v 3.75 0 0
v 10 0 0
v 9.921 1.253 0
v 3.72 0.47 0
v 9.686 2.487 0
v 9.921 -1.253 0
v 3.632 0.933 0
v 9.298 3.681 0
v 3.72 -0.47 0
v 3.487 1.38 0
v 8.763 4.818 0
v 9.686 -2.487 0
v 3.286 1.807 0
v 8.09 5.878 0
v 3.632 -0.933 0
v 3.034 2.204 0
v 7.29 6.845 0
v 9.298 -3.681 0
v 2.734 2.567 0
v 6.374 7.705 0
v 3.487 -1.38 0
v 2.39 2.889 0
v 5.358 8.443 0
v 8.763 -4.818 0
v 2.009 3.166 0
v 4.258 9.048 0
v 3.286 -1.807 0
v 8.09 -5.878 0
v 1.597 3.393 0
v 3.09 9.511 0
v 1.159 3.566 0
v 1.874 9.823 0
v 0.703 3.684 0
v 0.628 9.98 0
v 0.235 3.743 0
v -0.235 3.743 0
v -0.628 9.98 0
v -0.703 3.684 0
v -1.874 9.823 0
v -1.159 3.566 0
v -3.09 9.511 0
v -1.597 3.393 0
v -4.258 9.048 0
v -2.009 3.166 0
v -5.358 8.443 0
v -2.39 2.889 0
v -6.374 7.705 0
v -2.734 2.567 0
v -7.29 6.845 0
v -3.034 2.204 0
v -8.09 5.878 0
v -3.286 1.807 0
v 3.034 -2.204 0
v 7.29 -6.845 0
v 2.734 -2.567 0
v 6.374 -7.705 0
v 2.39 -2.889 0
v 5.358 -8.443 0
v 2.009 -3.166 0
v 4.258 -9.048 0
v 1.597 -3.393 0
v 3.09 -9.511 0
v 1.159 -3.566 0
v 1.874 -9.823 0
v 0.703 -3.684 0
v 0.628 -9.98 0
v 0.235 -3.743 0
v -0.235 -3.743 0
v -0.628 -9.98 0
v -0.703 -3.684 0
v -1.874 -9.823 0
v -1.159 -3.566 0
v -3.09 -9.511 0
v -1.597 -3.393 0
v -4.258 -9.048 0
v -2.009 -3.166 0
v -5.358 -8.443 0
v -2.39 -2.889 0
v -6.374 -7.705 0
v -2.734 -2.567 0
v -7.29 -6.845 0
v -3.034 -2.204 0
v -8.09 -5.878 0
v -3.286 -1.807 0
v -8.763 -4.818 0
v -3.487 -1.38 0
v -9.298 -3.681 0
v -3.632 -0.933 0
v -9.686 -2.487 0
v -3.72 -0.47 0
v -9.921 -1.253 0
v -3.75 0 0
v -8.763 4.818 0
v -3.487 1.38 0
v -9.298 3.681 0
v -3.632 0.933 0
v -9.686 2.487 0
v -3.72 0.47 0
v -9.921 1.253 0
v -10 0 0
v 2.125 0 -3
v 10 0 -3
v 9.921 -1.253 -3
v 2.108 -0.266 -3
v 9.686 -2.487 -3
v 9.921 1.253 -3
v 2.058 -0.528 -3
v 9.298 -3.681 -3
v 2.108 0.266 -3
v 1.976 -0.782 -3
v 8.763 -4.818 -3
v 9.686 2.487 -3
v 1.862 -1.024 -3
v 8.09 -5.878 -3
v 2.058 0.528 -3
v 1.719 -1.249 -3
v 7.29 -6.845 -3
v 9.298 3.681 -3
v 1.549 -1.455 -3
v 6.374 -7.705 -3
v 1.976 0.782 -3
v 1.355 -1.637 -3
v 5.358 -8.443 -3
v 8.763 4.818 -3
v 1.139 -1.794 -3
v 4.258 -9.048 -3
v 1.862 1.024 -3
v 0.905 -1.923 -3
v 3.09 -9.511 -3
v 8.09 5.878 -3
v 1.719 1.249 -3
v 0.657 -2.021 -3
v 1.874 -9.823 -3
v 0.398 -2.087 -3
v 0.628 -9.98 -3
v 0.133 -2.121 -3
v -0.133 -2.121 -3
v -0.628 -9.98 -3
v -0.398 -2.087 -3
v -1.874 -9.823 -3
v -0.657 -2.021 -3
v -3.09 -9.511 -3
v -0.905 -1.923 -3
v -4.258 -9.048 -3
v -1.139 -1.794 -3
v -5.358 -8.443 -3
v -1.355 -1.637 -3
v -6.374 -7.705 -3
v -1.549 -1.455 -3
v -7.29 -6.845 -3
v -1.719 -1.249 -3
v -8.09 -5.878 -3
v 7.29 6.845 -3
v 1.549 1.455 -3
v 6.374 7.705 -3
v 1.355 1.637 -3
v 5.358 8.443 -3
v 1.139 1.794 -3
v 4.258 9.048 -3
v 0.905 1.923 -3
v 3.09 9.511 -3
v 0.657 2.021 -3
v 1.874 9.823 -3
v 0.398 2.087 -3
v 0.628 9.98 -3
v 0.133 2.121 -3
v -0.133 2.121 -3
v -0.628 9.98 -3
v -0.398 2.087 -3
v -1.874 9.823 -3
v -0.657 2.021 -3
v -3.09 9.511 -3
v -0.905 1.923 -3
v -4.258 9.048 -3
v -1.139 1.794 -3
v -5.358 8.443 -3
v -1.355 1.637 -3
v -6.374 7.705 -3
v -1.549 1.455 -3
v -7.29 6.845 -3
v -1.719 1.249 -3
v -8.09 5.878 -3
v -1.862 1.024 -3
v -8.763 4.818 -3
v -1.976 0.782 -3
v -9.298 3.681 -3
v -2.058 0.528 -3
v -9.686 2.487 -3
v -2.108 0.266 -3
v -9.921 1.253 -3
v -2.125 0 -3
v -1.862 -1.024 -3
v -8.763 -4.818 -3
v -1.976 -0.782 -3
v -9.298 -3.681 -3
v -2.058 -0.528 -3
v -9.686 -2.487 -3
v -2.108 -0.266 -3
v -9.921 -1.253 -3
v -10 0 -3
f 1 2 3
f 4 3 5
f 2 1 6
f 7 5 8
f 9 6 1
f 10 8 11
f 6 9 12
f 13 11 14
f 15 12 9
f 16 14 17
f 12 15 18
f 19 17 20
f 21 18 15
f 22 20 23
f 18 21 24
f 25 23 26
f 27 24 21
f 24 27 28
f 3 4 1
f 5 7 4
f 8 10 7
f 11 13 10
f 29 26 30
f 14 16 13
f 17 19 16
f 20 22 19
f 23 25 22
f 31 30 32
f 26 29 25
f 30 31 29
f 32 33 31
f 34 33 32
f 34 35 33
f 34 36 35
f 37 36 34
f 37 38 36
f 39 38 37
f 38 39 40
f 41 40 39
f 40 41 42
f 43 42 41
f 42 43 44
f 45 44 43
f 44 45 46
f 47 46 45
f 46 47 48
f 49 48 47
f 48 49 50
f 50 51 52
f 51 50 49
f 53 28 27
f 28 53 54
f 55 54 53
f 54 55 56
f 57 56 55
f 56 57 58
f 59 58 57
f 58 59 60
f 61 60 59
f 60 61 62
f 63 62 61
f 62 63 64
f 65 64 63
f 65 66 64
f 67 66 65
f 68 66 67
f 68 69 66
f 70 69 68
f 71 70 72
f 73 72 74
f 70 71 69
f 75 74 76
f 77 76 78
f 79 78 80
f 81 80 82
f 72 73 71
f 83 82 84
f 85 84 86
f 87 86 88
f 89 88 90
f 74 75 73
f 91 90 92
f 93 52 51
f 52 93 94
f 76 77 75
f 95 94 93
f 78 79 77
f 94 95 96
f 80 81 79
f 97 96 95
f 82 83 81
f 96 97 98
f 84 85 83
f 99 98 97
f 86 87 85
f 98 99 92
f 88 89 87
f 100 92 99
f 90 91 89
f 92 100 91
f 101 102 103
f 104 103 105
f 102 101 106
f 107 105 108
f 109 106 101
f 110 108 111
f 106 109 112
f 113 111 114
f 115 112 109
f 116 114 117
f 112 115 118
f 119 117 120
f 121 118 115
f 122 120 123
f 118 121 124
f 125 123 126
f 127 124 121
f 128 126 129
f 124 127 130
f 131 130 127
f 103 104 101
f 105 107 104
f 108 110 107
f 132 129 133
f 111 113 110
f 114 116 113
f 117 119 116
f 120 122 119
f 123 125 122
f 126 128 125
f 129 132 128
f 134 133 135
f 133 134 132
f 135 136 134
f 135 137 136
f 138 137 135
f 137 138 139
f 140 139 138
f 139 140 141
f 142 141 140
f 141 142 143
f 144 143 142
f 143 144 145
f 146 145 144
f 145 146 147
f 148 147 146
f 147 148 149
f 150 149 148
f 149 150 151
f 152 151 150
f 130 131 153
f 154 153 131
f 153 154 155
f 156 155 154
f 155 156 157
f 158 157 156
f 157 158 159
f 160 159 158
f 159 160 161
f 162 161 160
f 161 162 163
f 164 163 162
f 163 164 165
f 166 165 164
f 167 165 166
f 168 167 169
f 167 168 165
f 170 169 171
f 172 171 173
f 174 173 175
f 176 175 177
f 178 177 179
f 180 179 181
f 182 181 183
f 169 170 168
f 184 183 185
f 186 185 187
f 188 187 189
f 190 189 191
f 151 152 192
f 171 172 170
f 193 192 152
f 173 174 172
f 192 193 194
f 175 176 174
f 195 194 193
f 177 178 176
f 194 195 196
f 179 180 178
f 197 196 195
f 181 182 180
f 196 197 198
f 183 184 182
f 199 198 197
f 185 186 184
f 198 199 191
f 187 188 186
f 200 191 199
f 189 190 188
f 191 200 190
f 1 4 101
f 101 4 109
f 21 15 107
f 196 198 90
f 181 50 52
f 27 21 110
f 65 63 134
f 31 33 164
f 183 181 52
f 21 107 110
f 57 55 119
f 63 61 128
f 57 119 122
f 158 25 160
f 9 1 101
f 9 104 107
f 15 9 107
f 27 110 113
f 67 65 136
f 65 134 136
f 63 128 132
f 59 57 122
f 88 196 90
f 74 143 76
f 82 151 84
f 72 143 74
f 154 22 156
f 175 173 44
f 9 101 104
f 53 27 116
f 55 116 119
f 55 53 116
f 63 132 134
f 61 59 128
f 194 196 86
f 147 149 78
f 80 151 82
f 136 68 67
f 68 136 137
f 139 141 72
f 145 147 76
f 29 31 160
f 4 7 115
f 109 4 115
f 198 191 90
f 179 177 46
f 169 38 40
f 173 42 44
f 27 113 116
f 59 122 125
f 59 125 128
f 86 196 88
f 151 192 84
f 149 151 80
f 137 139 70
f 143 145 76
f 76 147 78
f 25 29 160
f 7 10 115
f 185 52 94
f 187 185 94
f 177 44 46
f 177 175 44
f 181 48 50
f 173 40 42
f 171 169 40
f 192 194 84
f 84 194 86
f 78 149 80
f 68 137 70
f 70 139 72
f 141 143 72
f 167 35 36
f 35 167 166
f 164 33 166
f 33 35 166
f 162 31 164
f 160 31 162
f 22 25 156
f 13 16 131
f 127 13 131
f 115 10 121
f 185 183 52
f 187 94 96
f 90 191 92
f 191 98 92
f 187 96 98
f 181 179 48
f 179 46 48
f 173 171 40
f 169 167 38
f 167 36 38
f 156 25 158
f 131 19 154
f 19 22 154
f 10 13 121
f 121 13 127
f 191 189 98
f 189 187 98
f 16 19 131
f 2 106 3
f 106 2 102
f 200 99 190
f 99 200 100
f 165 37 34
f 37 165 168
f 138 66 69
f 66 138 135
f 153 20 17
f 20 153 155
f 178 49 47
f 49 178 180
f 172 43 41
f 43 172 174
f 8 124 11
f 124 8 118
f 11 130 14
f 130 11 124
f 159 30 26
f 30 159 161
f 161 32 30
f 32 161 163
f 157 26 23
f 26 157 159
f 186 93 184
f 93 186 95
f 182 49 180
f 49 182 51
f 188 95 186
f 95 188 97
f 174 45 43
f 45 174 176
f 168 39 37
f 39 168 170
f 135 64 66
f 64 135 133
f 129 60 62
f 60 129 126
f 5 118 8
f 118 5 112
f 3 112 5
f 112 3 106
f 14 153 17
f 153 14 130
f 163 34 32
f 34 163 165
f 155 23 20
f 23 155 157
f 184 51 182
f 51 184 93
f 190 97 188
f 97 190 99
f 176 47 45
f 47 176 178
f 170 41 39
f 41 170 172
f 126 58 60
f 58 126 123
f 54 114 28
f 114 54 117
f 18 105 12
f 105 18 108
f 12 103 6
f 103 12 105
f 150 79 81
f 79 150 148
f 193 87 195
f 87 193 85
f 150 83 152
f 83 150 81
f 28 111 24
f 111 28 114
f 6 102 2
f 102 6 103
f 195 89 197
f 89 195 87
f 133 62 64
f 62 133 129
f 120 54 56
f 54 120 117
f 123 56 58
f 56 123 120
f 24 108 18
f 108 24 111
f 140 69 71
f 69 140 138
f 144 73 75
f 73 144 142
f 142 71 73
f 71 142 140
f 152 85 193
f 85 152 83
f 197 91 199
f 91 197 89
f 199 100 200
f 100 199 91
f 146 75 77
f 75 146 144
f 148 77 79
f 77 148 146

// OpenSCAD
$fn = 50;


difference() {
	union() {
		translate(v = [0, 0, -3.0000000000]) {
			cylinder(h = 3, r = 10.0000000000);
		}
		cylinder(h = 0, r = 20.0000000000);
	}
	union() {
		translate(v = [0, 0, 0]) {
			rotate(a = [0, 0, 0]) {
				difference() {
					union() {
						#translate(v = [0, 0, -3.0000000000]) {
							cylinder(h = 3, r = 2.0000000000);
						}
						#translate(v = [0, 0, -3]) {
							cylinder(h = 3, r = 10.0000000000, r1 = 2.1250000000, r2 = 3.7500000000);
						}
						#translate(v = [0, 0, -3.0000000000]) {
							cylinder(h = 3, r = 2.1250000000);
						}
						#translate(v = [0, 0, -3.0000000000]) {
							cylinder(h = 3, r = 2.0000000000);
						}
					}
					union();
				}
			}
		}
	}
}
